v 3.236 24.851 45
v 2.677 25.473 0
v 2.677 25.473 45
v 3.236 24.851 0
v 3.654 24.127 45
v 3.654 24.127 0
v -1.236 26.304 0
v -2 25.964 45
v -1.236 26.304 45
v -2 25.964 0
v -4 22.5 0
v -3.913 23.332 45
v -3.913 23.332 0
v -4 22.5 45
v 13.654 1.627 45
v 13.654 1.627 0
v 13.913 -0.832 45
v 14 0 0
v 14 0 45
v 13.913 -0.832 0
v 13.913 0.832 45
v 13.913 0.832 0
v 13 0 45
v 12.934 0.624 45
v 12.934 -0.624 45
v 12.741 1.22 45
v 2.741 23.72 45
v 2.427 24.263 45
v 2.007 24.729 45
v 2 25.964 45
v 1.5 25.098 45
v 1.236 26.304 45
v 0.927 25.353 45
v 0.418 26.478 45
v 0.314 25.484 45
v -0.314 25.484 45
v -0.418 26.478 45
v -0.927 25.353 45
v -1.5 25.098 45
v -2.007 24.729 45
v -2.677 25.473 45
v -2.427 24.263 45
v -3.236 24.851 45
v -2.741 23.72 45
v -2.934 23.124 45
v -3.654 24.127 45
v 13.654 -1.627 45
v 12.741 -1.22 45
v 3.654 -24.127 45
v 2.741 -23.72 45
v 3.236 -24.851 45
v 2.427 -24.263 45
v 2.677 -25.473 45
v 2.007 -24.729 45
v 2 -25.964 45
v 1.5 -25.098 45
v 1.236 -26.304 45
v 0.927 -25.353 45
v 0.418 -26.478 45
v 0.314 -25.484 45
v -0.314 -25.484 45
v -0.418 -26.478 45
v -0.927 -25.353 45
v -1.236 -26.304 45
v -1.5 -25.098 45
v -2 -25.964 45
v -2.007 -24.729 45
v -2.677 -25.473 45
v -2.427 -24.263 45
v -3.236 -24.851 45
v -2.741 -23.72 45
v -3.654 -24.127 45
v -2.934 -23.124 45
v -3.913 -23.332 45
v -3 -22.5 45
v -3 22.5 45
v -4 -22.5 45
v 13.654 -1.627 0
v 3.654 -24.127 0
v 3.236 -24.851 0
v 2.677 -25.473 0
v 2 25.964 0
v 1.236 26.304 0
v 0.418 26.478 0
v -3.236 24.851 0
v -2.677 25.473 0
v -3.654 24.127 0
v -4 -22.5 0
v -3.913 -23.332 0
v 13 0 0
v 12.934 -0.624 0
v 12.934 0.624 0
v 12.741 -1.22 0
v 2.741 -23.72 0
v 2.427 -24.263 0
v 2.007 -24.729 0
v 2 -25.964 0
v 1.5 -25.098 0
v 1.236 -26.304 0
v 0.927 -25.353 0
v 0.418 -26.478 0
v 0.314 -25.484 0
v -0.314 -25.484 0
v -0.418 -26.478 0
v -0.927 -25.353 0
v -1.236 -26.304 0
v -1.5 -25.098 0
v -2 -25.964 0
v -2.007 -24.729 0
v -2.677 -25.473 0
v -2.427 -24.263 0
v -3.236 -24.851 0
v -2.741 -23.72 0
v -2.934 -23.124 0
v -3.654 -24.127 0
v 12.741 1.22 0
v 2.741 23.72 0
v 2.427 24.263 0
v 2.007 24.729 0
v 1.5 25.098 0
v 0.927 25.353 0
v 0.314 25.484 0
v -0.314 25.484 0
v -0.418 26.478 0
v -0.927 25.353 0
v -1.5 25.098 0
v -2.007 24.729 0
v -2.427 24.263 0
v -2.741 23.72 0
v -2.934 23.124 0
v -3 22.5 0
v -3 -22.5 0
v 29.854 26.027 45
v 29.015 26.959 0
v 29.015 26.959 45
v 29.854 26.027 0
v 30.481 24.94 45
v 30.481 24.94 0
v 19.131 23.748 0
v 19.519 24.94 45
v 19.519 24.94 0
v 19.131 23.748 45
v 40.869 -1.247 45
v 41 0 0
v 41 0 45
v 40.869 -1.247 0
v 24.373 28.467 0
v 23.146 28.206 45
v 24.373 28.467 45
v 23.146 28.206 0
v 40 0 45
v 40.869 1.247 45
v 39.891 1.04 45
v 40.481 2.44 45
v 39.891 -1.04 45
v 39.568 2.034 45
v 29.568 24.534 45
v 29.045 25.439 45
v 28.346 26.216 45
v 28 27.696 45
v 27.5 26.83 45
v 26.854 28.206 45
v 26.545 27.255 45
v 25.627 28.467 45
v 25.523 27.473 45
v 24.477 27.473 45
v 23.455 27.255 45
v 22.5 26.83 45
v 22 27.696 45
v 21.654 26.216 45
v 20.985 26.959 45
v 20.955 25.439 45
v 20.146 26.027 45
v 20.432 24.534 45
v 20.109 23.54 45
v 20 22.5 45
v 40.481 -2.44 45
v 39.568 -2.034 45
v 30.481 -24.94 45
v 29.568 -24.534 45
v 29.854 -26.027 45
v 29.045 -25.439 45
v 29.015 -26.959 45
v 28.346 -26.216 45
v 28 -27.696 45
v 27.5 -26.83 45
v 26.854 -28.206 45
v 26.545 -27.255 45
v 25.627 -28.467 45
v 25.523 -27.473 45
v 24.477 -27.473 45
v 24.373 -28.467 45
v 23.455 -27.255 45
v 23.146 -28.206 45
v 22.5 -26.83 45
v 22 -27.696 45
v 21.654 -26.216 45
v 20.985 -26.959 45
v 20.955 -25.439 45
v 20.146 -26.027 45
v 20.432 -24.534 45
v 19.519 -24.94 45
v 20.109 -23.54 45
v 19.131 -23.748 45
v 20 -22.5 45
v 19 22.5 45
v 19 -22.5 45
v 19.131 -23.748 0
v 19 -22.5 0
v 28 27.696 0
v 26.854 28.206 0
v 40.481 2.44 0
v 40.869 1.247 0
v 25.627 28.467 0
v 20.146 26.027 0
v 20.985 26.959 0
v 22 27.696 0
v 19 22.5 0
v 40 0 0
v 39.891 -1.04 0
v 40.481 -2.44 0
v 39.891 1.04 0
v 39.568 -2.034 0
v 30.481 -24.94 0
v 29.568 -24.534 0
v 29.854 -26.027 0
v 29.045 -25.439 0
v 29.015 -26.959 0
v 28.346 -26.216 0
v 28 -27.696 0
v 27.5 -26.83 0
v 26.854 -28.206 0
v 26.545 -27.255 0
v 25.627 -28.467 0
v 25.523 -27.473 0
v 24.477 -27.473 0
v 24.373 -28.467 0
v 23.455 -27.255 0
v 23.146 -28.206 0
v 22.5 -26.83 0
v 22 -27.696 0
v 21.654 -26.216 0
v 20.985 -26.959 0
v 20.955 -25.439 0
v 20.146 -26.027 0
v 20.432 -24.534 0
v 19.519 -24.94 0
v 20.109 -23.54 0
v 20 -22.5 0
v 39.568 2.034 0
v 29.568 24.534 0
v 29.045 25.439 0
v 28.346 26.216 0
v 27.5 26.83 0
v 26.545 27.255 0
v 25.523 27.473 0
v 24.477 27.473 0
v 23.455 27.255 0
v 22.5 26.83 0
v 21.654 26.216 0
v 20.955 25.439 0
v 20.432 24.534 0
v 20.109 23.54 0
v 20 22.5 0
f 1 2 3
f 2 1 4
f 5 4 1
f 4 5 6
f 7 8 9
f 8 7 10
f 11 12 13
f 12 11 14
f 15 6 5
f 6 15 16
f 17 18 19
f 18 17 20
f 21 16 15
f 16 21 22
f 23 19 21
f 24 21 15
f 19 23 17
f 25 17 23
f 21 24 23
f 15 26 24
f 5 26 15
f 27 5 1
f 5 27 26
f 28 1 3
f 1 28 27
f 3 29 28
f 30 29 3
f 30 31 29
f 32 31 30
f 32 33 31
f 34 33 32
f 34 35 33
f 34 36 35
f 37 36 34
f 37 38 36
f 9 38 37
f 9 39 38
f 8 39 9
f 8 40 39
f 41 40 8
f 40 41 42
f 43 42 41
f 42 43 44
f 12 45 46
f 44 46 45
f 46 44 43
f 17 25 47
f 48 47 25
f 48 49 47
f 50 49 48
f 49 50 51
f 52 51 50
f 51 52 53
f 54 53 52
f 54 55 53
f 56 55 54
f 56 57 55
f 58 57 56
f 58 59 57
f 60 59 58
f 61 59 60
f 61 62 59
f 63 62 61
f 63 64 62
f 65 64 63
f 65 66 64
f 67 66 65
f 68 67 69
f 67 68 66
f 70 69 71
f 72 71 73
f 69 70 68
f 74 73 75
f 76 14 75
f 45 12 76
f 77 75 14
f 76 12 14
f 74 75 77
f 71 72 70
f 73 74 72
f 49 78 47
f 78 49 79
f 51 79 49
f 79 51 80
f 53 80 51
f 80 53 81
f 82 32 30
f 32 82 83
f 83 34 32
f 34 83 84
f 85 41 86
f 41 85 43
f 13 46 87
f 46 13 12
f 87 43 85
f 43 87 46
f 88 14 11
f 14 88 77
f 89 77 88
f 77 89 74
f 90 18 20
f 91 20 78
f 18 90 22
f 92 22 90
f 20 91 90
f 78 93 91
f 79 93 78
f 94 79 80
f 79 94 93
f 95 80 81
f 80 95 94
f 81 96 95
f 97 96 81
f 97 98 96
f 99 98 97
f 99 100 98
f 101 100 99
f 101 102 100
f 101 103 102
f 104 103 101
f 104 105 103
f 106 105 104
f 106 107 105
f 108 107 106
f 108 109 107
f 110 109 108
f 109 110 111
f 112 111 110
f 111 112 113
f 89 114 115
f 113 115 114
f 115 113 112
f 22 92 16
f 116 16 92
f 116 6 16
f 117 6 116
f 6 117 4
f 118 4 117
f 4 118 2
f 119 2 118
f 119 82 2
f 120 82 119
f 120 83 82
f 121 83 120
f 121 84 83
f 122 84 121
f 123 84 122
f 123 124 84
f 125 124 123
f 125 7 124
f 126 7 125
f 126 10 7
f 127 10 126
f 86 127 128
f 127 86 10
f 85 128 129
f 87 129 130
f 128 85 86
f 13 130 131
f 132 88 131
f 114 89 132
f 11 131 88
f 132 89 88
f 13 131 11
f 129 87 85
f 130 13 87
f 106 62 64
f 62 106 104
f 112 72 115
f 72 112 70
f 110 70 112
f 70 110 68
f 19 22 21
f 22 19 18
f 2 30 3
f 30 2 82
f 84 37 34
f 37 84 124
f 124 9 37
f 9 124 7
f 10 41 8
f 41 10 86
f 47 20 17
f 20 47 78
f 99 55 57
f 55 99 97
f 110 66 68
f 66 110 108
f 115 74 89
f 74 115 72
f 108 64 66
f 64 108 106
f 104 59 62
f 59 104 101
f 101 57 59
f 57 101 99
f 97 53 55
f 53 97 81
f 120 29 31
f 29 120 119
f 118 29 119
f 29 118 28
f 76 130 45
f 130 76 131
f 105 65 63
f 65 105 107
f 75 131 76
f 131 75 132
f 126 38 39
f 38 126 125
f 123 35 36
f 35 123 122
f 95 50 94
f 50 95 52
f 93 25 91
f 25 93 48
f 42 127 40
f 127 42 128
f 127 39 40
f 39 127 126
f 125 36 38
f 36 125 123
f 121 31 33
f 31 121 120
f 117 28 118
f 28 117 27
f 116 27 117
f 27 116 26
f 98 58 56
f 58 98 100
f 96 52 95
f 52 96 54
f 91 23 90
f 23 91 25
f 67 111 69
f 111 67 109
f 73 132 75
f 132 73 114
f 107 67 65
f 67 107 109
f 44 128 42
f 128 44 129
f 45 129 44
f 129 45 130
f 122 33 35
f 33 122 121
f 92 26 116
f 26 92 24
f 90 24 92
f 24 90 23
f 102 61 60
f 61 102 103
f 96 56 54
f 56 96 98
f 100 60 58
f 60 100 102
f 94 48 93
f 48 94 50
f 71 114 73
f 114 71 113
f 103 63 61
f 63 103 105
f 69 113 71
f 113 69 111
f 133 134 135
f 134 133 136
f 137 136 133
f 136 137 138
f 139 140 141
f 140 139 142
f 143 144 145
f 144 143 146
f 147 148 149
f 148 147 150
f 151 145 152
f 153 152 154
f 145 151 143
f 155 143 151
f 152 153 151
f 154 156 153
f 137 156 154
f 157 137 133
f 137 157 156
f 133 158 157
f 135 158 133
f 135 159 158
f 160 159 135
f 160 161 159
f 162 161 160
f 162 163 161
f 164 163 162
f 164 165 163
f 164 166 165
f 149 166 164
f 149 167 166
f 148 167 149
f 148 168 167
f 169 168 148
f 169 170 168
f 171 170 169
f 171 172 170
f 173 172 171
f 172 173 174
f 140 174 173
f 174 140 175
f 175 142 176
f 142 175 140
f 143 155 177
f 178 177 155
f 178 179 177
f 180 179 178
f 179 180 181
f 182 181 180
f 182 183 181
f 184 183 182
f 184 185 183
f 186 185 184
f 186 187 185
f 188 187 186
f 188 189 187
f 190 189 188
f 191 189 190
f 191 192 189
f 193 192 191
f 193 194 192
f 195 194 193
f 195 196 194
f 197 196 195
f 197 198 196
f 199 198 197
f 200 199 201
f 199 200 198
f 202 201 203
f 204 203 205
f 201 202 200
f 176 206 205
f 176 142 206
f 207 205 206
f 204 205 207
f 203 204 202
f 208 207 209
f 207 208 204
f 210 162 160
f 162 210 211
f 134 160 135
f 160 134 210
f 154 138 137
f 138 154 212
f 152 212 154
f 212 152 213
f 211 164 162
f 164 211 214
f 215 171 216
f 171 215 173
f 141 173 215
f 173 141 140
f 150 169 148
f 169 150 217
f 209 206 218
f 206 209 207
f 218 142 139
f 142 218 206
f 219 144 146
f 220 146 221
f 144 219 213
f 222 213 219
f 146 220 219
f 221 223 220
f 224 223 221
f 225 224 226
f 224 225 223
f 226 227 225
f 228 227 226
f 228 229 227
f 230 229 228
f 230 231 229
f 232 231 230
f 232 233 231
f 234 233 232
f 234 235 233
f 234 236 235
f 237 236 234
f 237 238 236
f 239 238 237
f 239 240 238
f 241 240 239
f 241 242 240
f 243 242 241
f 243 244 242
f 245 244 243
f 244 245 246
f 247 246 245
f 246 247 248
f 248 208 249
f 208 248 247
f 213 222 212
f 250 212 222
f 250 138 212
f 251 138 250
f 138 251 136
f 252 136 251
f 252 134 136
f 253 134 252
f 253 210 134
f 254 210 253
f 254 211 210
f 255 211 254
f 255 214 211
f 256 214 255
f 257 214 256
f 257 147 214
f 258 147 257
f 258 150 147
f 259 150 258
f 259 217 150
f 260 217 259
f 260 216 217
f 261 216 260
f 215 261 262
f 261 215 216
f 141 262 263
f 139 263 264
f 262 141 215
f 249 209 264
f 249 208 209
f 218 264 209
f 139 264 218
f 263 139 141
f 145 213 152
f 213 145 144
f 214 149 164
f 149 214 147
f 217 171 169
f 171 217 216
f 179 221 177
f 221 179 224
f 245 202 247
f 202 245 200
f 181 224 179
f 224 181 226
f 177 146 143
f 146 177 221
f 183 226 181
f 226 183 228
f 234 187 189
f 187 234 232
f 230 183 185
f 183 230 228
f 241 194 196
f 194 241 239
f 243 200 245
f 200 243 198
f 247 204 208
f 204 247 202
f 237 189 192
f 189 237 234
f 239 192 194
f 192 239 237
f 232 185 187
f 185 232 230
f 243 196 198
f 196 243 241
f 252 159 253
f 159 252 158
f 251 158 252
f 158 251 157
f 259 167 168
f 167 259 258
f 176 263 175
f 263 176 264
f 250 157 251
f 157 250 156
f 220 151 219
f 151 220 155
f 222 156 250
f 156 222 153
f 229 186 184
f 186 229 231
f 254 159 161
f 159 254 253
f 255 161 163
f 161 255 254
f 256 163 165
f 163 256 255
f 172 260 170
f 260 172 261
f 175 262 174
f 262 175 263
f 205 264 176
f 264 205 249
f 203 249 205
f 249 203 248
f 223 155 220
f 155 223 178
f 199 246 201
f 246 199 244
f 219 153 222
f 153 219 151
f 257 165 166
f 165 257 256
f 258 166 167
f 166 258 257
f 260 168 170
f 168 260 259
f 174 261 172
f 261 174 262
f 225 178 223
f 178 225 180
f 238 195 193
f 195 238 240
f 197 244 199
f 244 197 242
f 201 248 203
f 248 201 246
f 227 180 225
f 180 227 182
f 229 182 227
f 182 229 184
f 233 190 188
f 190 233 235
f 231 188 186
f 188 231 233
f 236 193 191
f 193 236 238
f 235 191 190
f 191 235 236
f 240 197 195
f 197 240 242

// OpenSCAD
$fn = 30;

inner_shell_width = 45;
shell_height = 45;
mold_thickness = 1;
shell_thickness = 1;
board_thickness = 5;
shell_radius = 5;

element_radius = 5;

shell_gap = 2;

N=2;
//cube([25.4,45,6.35]);

for(i = [0:N-1]){
     offset = shell_gap*i-1;
    translate([i*25,0,0]){
    difference(){
        hull(){
            translate([0,inner_shell_width/2,0]) cylinder(r=shell_radius+offset,h=shell_height);
            translate([0,-inner_shell_width/2,0]) cylinder(r=shell_radius+offset, h=shell_height);
            translate([board_thickness+shell_radius,0,0]) cylinder(r=element_radius+offset,h=shell_height);
            echo(board_thickness+shell_radius+element_radius+offset);
        }
        hull(){
            translate([0,inner_shell_width/2,-0.1]) cylinder(r=shell_radius-shell_thickness+offset,h=shell_height+0.2);
            translate([0,-inner_shell_width/2,-0.1]) cylinder(r=shell_radius-shell_thickness+offset, h=shell_height+0.2);
            translate([board_thickness+shell_radius,0,-0.1]) cylinder(r=element_radius-shell_thickness+offset,h=shell_height+0.2);
        }
    }
    }
}

//translate([-0,-15,-33]) cube([10,30,30]);
//translate([-0,-25/2,-3]) cube([4,25,30]);
//
//for(i = [0:N-1]){
//    hull(){
//        translate([0,inner_shell_width/2,shell_gap*i+shell_height]) cylinder(r=shell_radius+shell_gap*N-2,h=shell_thickness);
//        translate([0,-inner_shell_width/2,shell_gap*i+shell_height]) cylinder(r=shell_radius+shell_gap*N-2, h=shell_thickness);
//        translate([board_thickness+shell_radius,0,shell_gap*i+shell_height]) cylinder(r=element_radius+shell_gap*N-2,h=shell_thickness);
//    }
//}
//
//for(i = [0:N-1]){
//    hull(){
//        translate([0,inner_shell_width/2,-shell_gap*i]) cylinder(r=shell_radius+shell_gap*N-2,h=shell_thickness);
//        translate([0,-inner_shell_width/2,-shell_gap*i]) cylinder(r=shell_radius+shell_gap*N-2, h=shell_thickness);
//        translate([board_thickness+shell_radius,0,-shell_gap*i]) cylinder(r=element_radius+shell_gap*N-2,h=shell_thickness);
//    }
//}
